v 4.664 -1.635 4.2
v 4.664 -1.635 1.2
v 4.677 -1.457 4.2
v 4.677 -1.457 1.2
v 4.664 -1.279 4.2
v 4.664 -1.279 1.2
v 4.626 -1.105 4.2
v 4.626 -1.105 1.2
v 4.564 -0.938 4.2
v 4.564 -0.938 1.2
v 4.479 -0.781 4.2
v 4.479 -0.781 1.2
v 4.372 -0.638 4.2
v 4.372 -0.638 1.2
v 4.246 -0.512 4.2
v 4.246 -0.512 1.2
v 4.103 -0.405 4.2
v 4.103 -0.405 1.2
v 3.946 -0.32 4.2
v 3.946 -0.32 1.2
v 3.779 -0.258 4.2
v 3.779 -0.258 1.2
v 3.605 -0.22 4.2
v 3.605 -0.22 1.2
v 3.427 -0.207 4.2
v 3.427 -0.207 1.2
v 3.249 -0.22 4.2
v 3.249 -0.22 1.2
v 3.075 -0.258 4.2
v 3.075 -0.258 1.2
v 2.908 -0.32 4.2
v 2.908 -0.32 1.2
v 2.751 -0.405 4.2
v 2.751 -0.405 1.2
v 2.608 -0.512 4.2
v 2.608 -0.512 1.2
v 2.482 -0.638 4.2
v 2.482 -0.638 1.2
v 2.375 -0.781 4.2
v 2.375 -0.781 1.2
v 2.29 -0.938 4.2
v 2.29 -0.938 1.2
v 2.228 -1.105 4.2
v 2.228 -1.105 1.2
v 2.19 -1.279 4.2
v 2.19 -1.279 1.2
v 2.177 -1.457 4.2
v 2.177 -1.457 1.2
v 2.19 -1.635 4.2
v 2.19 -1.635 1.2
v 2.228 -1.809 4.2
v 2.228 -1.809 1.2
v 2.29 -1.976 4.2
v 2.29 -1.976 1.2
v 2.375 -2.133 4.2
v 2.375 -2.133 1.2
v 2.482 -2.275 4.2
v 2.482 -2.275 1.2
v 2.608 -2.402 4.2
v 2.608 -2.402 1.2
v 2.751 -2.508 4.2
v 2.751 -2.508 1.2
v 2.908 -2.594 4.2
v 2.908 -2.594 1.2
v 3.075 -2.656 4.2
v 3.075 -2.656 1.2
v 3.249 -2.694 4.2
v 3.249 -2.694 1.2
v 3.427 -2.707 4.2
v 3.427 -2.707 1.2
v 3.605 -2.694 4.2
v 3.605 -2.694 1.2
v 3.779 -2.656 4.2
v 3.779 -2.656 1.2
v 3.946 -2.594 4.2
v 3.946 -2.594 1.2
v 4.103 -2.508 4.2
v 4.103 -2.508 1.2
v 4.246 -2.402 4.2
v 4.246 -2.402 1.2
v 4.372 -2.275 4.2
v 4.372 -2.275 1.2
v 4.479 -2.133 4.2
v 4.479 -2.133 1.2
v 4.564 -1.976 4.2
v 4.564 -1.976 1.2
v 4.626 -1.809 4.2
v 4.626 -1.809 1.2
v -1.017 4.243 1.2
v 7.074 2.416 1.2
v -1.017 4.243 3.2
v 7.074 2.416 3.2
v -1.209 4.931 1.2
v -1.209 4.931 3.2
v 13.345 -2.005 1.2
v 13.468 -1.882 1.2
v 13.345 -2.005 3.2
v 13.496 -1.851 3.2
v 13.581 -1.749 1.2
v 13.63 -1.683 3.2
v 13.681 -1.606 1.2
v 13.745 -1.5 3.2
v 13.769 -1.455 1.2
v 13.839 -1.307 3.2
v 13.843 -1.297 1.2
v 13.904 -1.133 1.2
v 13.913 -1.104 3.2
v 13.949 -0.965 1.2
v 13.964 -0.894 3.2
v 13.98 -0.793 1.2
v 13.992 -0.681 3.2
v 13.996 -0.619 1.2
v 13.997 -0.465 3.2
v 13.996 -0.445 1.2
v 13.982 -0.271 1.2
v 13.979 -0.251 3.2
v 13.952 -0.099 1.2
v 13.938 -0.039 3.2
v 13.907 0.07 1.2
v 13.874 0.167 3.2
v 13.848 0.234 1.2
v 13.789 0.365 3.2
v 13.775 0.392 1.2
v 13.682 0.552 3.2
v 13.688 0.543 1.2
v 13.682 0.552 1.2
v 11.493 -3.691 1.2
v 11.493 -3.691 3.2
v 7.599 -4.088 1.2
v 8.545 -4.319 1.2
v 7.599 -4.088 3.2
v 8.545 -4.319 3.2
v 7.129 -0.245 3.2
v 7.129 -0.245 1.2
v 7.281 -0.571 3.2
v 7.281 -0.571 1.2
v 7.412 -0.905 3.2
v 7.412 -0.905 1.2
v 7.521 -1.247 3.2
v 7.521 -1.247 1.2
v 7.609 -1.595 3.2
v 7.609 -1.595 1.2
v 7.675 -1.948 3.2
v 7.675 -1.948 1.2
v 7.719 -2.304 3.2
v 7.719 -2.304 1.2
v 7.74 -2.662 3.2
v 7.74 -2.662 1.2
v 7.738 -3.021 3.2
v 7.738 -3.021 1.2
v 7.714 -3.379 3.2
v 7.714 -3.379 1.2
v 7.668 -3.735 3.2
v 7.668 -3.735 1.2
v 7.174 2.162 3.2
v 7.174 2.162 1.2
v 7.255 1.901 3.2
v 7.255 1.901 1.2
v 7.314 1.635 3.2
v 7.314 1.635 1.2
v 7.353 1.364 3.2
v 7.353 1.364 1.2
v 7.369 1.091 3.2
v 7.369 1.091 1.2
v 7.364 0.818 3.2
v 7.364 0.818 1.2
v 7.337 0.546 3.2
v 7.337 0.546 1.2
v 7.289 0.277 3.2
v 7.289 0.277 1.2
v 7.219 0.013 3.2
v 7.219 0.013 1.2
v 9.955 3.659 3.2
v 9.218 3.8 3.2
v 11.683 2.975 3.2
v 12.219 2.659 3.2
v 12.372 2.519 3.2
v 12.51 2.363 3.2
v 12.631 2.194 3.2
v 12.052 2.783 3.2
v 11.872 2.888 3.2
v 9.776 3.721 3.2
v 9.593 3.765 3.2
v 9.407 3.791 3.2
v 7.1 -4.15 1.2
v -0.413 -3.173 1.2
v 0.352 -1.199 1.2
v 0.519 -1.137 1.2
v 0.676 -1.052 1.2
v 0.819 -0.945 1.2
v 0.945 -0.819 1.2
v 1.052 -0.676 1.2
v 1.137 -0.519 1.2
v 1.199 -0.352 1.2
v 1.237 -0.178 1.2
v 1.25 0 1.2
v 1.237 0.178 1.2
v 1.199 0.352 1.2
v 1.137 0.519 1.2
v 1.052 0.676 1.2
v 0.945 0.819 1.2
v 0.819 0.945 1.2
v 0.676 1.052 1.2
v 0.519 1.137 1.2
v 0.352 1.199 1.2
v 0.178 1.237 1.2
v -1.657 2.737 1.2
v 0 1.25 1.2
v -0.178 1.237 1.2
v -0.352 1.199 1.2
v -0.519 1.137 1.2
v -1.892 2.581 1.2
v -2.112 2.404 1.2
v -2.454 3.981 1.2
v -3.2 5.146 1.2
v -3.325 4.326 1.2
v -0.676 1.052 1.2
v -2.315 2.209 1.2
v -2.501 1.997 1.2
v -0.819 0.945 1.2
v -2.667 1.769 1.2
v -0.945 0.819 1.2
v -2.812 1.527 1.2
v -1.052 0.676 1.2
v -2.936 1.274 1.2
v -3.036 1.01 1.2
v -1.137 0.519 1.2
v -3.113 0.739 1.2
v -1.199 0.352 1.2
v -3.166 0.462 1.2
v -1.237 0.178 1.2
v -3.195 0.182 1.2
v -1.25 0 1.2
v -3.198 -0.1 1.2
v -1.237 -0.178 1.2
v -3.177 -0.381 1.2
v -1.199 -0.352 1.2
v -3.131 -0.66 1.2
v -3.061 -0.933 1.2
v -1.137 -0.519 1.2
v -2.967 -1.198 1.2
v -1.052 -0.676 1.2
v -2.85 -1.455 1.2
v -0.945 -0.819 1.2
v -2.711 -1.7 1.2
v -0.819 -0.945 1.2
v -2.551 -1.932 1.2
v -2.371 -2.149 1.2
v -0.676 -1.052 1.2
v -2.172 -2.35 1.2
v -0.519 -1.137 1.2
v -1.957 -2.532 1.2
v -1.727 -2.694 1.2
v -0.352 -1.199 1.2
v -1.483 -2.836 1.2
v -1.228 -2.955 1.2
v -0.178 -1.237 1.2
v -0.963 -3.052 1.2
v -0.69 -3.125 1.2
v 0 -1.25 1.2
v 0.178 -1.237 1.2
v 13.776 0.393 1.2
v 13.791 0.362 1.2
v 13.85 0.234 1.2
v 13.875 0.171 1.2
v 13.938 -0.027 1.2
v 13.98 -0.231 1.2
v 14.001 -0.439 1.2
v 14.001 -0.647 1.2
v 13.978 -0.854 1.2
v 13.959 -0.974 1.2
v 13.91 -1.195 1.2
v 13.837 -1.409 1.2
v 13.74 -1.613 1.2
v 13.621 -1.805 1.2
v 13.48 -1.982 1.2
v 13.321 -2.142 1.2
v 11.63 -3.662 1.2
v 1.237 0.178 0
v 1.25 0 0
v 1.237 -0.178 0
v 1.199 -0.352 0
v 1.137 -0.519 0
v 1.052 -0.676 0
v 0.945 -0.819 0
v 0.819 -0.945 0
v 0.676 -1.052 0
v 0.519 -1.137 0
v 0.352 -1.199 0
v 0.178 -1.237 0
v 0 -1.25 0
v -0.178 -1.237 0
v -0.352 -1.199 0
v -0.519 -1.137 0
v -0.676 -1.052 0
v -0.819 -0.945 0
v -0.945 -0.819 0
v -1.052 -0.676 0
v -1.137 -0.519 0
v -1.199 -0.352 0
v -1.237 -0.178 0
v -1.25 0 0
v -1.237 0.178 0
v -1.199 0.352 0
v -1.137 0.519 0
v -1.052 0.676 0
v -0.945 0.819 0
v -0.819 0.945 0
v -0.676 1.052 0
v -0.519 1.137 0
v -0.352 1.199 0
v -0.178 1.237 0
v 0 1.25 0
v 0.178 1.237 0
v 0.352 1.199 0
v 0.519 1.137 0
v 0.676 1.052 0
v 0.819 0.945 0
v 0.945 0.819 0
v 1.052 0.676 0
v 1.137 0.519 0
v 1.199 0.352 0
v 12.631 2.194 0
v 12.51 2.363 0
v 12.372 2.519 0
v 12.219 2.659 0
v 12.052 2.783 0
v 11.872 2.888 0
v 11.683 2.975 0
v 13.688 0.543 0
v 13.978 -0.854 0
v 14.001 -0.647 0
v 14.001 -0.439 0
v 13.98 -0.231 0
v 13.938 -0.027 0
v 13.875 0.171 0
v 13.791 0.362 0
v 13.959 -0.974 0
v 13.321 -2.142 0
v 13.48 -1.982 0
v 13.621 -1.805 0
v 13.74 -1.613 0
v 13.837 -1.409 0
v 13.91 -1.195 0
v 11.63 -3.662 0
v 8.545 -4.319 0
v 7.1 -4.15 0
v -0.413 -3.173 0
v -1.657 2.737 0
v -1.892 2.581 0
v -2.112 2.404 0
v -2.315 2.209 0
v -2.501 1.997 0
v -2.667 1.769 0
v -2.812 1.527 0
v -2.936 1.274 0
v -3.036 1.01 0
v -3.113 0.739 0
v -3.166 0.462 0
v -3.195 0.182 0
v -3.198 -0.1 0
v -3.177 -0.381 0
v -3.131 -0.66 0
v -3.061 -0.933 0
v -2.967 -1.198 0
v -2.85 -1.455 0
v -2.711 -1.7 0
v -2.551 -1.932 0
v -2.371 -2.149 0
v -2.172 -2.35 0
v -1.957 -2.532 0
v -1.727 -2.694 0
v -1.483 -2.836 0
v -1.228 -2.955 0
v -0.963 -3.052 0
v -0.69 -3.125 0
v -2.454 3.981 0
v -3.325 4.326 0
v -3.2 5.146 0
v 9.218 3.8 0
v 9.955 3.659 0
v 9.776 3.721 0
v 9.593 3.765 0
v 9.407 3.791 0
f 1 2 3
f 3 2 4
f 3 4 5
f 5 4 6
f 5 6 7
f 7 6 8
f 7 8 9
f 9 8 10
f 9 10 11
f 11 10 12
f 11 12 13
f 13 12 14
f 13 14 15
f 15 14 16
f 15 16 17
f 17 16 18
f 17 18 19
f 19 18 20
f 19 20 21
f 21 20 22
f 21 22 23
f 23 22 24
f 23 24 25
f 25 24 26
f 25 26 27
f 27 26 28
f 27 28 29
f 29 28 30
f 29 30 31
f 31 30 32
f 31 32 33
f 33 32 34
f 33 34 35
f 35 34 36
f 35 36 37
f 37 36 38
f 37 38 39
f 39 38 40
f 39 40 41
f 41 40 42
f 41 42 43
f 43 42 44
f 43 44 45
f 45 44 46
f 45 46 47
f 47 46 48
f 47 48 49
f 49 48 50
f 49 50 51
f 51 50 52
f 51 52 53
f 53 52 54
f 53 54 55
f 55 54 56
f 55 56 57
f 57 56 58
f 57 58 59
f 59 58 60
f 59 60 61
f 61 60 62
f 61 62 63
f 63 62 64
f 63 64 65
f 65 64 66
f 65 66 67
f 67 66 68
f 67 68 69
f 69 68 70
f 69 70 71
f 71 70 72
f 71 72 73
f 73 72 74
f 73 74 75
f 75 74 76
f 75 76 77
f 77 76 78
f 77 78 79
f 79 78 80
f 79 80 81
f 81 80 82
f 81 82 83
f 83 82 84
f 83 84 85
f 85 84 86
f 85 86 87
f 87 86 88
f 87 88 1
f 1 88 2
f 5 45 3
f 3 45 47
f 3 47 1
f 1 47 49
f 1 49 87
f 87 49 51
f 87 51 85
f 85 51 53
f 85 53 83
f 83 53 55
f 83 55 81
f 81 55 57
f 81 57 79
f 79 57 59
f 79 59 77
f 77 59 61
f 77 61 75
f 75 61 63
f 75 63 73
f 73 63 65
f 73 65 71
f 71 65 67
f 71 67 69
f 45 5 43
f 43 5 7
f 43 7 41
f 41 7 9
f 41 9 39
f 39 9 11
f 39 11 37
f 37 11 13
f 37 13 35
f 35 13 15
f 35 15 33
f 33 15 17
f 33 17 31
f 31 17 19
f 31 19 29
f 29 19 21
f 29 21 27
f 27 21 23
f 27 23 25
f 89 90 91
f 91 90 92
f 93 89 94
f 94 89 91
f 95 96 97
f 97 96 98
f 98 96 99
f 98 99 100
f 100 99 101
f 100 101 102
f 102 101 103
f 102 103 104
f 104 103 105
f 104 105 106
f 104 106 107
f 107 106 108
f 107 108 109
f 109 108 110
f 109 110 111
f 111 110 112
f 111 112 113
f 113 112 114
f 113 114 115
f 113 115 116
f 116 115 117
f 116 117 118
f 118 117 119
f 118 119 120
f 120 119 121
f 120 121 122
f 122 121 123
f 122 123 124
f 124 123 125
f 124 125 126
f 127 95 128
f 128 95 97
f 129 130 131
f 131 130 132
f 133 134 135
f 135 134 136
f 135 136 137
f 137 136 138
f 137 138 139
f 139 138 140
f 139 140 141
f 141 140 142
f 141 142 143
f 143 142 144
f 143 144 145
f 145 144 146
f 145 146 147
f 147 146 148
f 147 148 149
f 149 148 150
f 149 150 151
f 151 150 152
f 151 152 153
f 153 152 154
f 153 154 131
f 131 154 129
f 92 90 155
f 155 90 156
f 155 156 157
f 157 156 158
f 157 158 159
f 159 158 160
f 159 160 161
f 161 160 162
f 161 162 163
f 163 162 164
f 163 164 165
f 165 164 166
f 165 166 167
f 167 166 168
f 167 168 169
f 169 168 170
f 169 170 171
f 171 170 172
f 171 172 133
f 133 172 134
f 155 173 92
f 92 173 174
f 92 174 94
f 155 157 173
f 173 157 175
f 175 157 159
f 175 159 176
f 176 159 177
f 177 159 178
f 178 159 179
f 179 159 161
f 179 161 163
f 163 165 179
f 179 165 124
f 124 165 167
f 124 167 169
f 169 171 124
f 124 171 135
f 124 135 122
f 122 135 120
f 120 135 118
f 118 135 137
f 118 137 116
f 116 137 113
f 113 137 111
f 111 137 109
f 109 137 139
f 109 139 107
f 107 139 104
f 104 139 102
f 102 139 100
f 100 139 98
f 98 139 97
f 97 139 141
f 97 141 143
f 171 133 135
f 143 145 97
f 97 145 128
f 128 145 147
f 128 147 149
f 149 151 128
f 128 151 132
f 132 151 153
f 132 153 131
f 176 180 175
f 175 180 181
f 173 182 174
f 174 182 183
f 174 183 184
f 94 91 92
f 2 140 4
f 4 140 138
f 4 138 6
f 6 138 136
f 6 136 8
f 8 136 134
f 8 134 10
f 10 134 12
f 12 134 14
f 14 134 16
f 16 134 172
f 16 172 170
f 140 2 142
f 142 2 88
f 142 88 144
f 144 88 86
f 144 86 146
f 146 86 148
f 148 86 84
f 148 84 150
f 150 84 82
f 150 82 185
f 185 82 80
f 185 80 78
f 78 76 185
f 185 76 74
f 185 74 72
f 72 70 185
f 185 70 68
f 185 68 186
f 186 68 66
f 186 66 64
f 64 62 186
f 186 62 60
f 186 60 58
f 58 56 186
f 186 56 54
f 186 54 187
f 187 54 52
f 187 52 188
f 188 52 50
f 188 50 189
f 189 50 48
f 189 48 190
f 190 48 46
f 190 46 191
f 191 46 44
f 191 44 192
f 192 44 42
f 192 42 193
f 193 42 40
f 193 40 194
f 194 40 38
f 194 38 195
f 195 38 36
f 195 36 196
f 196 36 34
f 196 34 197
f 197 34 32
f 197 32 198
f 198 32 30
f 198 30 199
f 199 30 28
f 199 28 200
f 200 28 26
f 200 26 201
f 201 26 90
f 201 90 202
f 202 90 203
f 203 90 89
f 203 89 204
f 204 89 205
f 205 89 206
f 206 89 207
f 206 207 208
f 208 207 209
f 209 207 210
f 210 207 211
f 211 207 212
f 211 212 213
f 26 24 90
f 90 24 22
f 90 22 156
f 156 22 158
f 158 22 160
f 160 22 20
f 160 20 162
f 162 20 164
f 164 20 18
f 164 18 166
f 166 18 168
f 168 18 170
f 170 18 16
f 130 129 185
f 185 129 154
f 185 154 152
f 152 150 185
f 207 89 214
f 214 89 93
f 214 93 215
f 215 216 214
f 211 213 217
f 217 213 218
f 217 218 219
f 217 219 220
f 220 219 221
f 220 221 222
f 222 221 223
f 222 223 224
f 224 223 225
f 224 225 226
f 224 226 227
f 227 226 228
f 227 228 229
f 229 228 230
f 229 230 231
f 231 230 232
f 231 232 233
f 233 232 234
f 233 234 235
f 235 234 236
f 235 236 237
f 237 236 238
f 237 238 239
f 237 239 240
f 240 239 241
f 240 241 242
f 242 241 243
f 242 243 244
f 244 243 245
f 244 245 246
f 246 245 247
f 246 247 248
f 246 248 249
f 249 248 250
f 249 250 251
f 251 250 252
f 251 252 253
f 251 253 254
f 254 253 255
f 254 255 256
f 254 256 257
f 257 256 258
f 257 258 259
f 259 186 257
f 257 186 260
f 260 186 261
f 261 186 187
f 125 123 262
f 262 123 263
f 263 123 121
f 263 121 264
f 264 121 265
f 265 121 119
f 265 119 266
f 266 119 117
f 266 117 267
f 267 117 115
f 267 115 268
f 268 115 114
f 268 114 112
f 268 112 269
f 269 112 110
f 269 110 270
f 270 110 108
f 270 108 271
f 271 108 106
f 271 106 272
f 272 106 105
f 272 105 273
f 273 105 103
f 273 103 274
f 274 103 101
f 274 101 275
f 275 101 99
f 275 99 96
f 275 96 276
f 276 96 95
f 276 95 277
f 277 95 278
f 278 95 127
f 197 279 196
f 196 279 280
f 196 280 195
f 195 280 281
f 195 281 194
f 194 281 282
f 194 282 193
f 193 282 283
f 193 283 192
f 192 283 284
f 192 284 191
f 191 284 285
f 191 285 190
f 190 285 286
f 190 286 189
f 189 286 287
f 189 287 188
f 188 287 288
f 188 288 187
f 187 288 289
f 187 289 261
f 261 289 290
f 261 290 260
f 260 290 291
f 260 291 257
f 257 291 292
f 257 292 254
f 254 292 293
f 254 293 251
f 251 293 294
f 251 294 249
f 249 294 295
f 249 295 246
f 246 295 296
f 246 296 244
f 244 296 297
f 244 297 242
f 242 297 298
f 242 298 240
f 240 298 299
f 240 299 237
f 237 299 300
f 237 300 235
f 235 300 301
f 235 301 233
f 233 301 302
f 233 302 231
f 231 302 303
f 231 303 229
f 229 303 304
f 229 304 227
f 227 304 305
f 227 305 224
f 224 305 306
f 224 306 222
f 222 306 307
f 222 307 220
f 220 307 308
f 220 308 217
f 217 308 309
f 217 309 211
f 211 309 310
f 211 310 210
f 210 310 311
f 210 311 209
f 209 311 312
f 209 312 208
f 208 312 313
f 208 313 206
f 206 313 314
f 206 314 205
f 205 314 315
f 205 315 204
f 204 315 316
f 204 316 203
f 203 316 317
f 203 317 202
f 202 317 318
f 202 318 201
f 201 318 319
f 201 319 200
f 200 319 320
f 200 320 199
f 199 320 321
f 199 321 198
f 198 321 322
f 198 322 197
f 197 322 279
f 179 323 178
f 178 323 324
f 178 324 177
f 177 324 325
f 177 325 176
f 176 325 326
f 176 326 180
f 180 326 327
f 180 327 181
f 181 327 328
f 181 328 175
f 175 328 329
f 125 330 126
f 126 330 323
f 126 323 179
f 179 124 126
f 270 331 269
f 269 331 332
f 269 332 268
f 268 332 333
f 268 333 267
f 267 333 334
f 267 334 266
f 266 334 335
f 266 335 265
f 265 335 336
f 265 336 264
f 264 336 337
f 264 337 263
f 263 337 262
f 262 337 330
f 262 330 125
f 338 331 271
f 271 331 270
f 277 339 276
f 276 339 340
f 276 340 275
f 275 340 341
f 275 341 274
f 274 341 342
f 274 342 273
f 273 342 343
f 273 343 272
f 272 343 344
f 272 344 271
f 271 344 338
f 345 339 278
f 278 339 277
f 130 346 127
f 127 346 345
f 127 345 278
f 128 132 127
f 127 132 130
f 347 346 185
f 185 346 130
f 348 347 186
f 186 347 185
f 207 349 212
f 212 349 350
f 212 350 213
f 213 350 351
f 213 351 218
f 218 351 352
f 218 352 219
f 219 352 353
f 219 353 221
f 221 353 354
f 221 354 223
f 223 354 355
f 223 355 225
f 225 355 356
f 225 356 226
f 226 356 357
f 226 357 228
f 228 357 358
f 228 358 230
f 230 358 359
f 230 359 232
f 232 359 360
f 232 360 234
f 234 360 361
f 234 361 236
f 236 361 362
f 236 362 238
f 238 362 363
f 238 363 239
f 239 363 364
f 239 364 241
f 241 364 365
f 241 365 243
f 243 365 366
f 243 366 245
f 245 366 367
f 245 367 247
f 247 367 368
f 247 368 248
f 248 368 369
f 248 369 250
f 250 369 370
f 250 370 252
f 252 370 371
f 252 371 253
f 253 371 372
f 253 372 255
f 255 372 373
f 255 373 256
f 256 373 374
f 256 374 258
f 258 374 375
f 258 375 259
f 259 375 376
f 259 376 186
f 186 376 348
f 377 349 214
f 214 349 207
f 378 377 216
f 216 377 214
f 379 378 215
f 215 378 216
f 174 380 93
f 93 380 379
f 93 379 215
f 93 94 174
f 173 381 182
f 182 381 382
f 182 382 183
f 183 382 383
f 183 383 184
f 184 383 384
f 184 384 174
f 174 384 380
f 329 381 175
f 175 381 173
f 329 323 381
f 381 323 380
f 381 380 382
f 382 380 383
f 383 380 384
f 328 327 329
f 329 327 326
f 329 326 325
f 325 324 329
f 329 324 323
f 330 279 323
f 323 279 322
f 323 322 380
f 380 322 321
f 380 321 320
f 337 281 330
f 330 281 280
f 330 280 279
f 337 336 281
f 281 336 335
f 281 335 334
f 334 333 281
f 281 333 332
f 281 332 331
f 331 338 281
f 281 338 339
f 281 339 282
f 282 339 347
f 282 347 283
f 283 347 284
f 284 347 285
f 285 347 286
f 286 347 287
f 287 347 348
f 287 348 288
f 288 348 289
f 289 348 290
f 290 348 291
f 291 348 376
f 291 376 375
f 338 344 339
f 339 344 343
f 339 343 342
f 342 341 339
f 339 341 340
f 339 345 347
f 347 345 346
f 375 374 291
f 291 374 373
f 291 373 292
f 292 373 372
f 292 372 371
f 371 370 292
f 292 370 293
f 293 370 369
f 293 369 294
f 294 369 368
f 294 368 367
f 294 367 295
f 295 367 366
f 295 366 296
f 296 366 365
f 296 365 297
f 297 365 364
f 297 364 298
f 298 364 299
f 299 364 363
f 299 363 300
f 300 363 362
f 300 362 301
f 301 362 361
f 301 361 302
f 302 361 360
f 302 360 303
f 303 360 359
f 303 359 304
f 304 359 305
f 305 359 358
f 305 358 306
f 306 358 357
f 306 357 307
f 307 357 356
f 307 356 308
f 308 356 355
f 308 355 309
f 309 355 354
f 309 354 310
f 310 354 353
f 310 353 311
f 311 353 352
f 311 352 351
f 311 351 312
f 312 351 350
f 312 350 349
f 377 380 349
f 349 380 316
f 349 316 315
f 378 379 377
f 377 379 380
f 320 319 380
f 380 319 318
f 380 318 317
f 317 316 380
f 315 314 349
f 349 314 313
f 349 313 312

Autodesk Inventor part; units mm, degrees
ref_plane "YZ Plane" through (0, 0, 0) normal (1, 0, 0) x (0, 1, 0)
ref_plane "XZ Plane" through (0, 0, 0) normal (0, 1, 0) x (-1, 0, 0)
ref_plane "XY Plane" through (0, 0, 0) normal (0, 0, 1) x (1, 0, 0)
sketch "Boceto1" plane through (0, 0, 0) normal (0, 0, 1) x (1, 0, 0)
  circle A0 centre (0, 0) radius 1.25
  arc A1 (-1.6574, 2.7373) -> (-0.4126, -3.1733) centre (0, 0) ccw
  line L0 (7.1, -4.15) -> (7.1, -7.1226) construction
  line L1 (-3.2, 3.2) -> (-3.2, -3.4) construction
  line L2 (-0.4126, -3.1733) -> (7.1, -4.15)
  line L3 (-1.4, 3.8) -> (-1.4, 6.2978) construction
  line L4 (14.1, 2.7373) -> (14.1, -1.982) construction
  line L5 (7.1, -4.15) -> (8.5447, -4.3189)
  line L6 (8.5447, -4.3189) -> (11.6298, -3.6616)
  line L7 (11.6298, -3.6616) -> (13.3209, -2.1424)
  line L8 (13.9587, -0.9739) -> (13.978, -0.8543)
  line L9 (9.9548, 3.6595) -> (11.6833, 2.9749)
  line L10 (12.6312, 2.1939) -> (13.688, 0.5435)
  arc A2 (12.6312, 2.1939) -> (11.6833, 2.9749) centre (10.9469, 1.1154) ccw
  arc A3 (9.9548, 3.6595) -> (9.2184, 3.8) centre (9.2184, 1.8) ccw
  arc A4 (13.978, -0.8543) -> (13.688, 0.5435) centre (12.0037, -0.535) ccw
  arc A5 (13.3209, -2.1424) -> (13.9587, -0.9739) centre (11.9843, -0.6546) ccw
  line L11 (-1.6574, 2.7373) -> (-2.4537, 3.981)
  line L12 (-2.4537, 3.981) -> (-3.3251, 4.3261)
  line L13 (-3.3251, 4.3261) -> (-3.2, 5.1465)
  line L14 (-3.2, 5.1465) -> (9.2184, 3.8)
  point P0 (9.6, 3.8)
  point P1 (14.1, -0.1)
  dimension "d0" = 2.5
  dimension "d4" = 6.4
  dimension "d5" = 4.15
  dimension "d6" = 10.3
  dimension "d7" = 3.8
  dimension "d8" = 1.8
  dimension "d9" = 11
  dimension "d10" = 7
  dimension "d19" = 2
extrude "Extrusión1" add sketch "Boceto1" along normal blind 1.2
sketch "Boceto5" plane through (0, 0, 1.2) normal (0, 0, 1) x (1, 0, 0)
  line L0 (7.5987, -4.0877) -> (8.5447, -4.3189)
  line L1 (8.5447, -4.3189) -> (11.6298, -3.6616)
  line L2 (11.4934, -3.6907) -> (13.3446, -2.0049)
  line L3 (9.9548, 3.6595) -> (11.6833, 2.9749)
  line L4 (12.6312, 2.1939) -> (13.6823, 0.5523)
  arc A0 (12.6312, 2.1939) -> (11.6833, 2.9749) centre (10.9469, 1.1154) ccw
  arc A1 (9.9548, 3.6595) -> (9.2184, 3.8) centre (9.2184, 1.8) ccw
  arc A2 (13.3446, -2.0049) -> (13.6823, 0.5523) centre (11.998, -0.5262) ccw
  arc A3 (3.8787, -10.625) -> (3.8888, -10.616) centre (2.5421, -9.1373) ccw
  arc A4 (7.5987, -4.0877) -> (7.1292, -0.2455) centre (2.0351, -2.8178) ccw
  arc A5 (7.1292, -0.2455) -> (7.0735, 2.4165) centre (3.9271, 1.0191) ccw
  arc A6 (9.9548, 3.6595) -> (9.2184, 3.8) centre (9.2184, 1.8) ccw projected
  line L5 (9.2184, 3.8) -> (5.136, 4.2426)
  line L6 (5.136, 4.2426) -> (-1.2086, 4.9306)
  line L7 (9.2184, 3.8) -> (-3.2, 5.1465) projected
  line L8 (-1.0169, 4.2426) -> (-1.2086, 4.9306)
  line L9 (-1.0169, 4.2426) -> (7.0735, 2.4165)
  point P0 (0, 0)
  point P1 (9.6, 3.8)
extrude "Extrusión5" add sketch "Boceto5" along normal blind 2
sketch "Boceto6" plane through (0, 0, 1.2) normal (0, 0, 1) x (1, 0, 0)
  circle A0 centre (3.427, -1.4569) radius 1.25
  point P0 (0, 0)
  dimension "d26" = 2.5
extrude "Extrusión6" add sketch "Boceto6" along normal blind 3
properties part number "Pieza3_3DPrint"
